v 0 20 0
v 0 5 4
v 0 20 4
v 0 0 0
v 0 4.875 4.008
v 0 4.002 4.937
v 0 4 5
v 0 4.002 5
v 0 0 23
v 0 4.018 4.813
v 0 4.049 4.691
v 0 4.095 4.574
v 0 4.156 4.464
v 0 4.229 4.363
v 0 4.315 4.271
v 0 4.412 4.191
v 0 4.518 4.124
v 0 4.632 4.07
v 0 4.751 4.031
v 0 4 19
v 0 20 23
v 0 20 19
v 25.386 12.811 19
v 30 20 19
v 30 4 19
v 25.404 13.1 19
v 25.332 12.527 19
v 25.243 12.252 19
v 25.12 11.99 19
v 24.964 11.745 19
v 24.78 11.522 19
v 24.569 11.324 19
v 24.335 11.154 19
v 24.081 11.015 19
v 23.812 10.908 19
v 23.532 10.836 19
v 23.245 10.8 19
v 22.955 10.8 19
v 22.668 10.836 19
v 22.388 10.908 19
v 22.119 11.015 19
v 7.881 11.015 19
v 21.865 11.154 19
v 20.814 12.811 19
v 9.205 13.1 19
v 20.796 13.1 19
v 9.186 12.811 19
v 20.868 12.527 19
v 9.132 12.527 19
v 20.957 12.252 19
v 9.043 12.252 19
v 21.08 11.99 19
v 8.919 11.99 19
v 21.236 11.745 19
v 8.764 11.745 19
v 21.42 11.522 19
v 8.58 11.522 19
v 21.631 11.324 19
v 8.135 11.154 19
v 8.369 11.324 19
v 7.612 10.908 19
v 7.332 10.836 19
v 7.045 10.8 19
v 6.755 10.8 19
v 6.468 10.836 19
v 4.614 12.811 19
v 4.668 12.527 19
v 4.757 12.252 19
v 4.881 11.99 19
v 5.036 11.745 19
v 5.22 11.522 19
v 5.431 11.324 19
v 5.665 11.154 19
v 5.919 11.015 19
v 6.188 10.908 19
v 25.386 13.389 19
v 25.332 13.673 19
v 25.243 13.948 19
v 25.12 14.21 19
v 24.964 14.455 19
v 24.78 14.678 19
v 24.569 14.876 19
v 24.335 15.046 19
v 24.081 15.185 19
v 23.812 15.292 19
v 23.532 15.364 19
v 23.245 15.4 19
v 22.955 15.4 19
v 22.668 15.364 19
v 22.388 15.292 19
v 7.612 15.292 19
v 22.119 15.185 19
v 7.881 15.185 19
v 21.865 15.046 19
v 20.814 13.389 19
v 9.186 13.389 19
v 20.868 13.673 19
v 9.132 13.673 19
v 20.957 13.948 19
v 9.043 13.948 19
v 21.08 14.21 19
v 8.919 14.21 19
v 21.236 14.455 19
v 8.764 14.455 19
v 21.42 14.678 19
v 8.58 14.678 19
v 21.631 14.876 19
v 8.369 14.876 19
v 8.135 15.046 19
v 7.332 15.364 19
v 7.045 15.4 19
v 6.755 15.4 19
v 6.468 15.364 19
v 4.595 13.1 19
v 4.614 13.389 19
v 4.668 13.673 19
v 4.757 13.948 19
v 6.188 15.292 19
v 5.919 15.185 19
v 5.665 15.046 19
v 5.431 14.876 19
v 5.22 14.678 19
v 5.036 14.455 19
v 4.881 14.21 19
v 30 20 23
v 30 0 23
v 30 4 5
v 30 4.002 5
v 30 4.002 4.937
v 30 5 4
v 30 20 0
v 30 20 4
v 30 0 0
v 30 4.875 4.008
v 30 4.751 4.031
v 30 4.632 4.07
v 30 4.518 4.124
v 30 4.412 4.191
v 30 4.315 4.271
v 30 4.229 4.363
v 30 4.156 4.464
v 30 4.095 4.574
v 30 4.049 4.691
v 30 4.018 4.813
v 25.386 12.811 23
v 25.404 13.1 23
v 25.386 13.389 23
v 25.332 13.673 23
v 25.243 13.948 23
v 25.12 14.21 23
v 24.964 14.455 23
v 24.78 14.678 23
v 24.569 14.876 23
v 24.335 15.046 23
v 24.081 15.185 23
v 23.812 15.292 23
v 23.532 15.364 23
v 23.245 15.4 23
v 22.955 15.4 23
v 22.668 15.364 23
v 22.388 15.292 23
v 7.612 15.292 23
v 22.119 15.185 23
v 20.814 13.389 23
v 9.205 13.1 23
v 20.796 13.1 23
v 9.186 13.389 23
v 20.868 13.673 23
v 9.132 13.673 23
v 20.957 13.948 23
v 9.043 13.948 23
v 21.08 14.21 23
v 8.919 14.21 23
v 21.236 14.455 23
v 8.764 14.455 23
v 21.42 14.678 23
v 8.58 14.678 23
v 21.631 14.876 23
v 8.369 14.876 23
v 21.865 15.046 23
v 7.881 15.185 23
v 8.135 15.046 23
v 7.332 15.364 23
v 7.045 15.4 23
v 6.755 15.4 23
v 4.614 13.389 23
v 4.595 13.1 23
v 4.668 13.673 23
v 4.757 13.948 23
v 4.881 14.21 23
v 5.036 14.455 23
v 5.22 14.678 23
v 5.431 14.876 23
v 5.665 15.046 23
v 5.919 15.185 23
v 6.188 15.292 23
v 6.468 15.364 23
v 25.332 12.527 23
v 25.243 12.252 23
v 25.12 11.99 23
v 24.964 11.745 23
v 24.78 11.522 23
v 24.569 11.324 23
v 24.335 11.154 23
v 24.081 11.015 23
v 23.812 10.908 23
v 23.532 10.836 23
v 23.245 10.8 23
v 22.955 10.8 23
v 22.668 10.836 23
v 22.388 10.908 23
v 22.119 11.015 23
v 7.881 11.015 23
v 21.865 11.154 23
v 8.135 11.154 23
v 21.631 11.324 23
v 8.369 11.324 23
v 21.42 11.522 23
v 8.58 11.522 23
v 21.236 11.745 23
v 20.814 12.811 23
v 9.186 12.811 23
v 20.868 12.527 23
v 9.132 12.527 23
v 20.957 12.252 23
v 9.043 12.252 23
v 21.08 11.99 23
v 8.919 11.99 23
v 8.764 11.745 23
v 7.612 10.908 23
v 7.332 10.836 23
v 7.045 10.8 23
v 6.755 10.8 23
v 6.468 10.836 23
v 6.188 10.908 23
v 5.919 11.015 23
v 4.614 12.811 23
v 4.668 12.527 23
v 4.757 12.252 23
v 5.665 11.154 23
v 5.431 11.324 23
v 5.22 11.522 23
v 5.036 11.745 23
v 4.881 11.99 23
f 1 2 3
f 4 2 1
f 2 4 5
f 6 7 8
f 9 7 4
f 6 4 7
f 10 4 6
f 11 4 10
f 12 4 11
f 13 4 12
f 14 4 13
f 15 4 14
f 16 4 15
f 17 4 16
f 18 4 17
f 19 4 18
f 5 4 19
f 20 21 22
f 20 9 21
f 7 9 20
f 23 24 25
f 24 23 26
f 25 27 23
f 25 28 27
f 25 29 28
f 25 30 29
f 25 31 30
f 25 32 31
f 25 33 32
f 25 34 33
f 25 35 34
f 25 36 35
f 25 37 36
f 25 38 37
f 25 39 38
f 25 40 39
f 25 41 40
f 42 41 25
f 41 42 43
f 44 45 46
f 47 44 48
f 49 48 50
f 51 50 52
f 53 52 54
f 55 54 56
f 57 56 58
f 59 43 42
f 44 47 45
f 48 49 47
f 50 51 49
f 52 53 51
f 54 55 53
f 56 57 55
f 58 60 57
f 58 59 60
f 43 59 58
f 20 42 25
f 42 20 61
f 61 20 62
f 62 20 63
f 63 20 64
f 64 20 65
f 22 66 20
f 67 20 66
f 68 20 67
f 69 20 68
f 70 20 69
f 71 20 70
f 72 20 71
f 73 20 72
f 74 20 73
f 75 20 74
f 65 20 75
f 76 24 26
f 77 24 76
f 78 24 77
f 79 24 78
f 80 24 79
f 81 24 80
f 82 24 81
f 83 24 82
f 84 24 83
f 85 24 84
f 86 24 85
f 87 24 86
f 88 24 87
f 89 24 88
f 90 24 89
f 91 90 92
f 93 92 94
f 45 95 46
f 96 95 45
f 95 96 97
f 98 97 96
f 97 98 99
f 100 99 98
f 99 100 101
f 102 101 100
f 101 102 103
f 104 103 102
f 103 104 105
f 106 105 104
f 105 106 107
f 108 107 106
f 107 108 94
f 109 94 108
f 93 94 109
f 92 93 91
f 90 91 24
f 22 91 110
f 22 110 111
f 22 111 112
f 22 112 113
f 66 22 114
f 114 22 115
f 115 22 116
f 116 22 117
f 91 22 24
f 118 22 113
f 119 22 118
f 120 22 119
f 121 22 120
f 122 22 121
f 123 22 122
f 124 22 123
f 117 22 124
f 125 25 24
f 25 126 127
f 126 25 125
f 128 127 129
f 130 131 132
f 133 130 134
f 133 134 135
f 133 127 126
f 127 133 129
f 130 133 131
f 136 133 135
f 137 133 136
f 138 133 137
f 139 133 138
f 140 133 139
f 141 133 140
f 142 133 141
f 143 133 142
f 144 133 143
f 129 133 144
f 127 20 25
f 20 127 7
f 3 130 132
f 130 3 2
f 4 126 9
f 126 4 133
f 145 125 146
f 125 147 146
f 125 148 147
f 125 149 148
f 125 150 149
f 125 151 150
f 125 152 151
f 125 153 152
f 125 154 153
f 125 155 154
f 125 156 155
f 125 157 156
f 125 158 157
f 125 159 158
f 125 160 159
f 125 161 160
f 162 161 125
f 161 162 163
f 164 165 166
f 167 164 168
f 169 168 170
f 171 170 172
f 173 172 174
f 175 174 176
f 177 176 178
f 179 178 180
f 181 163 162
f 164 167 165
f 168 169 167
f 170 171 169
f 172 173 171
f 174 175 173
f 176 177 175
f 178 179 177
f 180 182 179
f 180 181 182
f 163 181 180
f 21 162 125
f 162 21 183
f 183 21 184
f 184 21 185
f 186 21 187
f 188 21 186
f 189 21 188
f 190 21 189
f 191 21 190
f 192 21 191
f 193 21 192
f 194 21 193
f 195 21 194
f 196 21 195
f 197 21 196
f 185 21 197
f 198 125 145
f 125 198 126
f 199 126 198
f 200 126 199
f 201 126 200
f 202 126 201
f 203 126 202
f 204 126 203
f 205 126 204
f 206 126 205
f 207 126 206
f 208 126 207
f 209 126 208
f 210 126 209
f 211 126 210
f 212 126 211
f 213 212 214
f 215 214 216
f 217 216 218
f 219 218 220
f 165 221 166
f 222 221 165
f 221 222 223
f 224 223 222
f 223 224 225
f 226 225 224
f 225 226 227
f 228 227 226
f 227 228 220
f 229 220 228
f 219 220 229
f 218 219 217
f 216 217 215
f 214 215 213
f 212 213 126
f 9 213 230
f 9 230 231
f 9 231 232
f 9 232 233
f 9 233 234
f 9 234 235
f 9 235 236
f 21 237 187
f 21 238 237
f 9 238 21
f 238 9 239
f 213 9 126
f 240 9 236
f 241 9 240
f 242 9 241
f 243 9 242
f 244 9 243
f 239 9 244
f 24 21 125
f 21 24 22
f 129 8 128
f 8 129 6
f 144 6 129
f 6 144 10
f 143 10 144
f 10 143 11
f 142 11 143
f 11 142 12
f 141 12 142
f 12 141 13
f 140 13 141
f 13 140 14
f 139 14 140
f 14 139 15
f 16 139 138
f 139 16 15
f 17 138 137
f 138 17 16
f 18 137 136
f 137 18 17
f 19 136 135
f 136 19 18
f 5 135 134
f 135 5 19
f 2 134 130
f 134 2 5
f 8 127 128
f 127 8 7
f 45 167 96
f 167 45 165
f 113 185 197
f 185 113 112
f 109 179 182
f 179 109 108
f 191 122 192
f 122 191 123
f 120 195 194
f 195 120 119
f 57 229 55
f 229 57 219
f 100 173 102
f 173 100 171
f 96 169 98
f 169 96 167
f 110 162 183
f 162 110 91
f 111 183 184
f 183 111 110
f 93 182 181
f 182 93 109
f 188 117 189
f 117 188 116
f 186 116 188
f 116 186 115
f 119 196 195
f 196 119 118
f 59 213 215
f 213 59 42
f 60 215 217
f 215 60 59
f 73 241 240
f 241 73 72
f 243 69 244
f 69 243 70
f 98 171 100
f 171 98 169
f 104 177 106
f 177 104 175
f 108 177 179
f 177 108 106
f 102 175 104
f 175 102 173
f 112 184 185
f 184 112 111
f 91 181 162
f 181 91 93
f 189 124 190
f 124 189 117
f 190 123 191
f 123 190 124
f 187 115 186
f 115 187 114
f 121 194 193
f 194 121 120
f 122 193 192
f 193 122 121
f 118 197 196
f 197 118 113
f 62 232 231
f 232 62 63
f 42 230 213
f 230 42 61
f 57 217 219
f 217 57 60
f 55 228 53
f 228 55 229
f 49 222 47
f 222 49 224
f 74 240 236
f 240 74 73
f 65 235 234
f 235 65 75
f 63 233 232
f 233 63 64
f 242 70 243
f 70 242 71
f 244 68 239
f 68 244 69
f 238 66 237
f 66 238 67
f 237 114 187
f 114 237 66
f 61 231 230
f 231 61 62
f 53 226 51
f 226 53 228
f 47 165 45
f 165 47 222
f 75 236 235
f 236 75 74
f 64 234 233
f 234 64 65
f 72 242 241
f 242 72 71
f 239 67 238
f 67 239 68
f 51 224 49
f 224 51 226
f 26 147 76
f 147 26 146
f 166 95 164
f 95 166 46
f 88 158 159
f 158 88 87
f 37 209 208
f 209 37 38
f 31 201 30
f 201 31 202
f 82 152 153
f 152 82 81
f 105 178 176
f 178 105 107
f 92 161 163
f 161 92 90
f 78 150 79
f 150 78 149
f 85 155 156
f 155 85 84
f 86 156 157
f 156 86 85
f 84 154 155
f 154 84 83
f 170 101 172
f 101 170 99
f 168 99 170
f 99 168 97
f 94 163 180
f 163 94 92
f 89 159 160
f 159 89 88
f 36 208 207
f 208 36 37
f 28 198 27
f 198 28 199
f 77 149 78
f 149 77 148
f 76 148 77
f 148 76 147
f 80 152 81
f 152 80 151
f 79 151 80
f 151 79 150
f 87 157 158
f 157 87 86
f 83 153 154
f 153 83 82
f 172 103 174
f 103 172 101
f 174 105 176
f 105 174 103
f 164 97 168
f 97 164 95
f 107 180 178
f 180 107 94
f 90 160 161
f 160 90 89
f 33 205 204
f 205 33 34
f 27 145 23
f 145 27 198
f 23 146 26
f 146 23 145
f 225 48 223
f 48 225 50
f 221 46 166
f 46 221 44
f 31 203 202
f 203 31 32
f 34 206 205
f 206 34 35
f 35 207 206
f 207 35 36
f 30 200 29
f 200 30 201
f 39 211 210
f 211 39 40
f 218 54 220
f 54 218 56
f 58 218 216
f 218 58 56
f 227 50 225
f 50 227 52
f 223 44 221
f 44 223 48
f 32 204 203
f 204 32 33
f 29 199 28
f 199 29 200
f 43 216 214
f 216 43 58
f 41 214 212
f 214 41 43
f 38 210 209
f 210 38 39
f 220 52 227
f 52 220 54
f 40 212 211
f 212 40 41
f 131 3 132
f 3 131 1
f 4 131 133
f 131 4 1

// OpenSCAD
// file: ../lib/bevel.scad
module bevel(l, s, oe=0.1) {
	scale([-1, 1, 1])
	rotate([0, -90, 0])
	linear_extrude(l)
	difference() {
		translate([-oe, -oe]) square([s, s]);
		translate([s, s]) circle(r=s, center=true);
	}
}


module bevel_inv(l, s) {
	scale([-1, 1, 1])
	rotate([0, -90, 0])
	linear_extrude(l)
	difference() {
		square([s, s]);
		difference() {
			square([s, s]);
			translate([s, s]) circle(r=s, center=true);
		}
	}
}
// file: ../lib/hole.scad
module cylinder_outer(h,d=undef,d1=undef,d2=undef,fn=15) {
	fudge = cos(180/fn);
	cylinder(h=h,d=d/fudge,d1=d1/fudge,d2=d2/fudge,$fn=fn);
}

module hole(d, height, countersink=0, extra_above=false) {
	height = height - countersink;
	translate([0, 0, -(height+countersink)]) {
		translate([0, 0, height+0.001]) cylinder_outer(d1=d, d2=d*1.5, h=countersink);
		if (extra_above) {
			translate([0, 0, height+0.001]) cylinder_outer(d1=d, d2=d*2, h=countersink*3/2);
		}
		if (height > 0)
			translate([0, 0, -2]) cylinder_outer(d=d, h=height+2.1);
	}
}

module nut_trap(w, h, sides, center=false){
	cylinder(r = w / 2 / cos(180 / 6) + 0.05, h=h, $fn=6, center=center);
}

module rim(id, od, h) {
	difference() {
		cylinder_outer(h=h, d=od);
		translate([0, 0, -1]) cylinder(h=h+2, d=id);
	}
}

rim(8.5, 13, 2);
// main file
use <../lib/hole.scad>;
use <../lib/bevel.scad>;

l = 30;
w = 20;
h = 4;
hd = 3.5;
th = 15;
uth = 4;
thd = 4.6;

$fs = 0.2;
$fn = 50;

hd_edge = hd*4/3;
thd_edge = thd*1.5;

bottom_holes = false;

difference() {
	cube([l, w, h]);
	if (bottom_holes) {
		translate([0, 0 ,h]) {
			translate([hd_edge, hd_edge, 0]) {
				hole_row();
			}
			translate([hd_edge, w-hd_edge, 0]) {
				hole_row();
			}
		}
	}
}


clamp_offset = bottom_holes ? hd_edge * 1.5 : 0;
rw = w - clamp_offset;
translate([0, clamp_offset, h]) {
	difference() {
		union() {
			cube([l, uth, th]);
			translate([0, 0, th]) cube([l, rw, uth]);
			translate([0, uth, 0]) bevel(l, 1);
		}
		if (bottom_holes) {
			translate([-1, 0, th + uth]) rotate([270, 0, 0]) bevel(l + 2, 3);
		}
		translate([thd_edge, rw - thd_edge, th-1]) cylinder_outer(uth+2, 4.6, fn=$fn); 
		translate([l - thd_edge, rw - thd_edge, th-1]) cylinder_outer(uth+2, 4.6, fn=$fn); 
	}
}

module hole_row() {
	for (i = [0 : hd * 3 : l - hd_edge*2]) {
		translate([i, 0, 0]) hole(hd, 10, 1);
	}
}
